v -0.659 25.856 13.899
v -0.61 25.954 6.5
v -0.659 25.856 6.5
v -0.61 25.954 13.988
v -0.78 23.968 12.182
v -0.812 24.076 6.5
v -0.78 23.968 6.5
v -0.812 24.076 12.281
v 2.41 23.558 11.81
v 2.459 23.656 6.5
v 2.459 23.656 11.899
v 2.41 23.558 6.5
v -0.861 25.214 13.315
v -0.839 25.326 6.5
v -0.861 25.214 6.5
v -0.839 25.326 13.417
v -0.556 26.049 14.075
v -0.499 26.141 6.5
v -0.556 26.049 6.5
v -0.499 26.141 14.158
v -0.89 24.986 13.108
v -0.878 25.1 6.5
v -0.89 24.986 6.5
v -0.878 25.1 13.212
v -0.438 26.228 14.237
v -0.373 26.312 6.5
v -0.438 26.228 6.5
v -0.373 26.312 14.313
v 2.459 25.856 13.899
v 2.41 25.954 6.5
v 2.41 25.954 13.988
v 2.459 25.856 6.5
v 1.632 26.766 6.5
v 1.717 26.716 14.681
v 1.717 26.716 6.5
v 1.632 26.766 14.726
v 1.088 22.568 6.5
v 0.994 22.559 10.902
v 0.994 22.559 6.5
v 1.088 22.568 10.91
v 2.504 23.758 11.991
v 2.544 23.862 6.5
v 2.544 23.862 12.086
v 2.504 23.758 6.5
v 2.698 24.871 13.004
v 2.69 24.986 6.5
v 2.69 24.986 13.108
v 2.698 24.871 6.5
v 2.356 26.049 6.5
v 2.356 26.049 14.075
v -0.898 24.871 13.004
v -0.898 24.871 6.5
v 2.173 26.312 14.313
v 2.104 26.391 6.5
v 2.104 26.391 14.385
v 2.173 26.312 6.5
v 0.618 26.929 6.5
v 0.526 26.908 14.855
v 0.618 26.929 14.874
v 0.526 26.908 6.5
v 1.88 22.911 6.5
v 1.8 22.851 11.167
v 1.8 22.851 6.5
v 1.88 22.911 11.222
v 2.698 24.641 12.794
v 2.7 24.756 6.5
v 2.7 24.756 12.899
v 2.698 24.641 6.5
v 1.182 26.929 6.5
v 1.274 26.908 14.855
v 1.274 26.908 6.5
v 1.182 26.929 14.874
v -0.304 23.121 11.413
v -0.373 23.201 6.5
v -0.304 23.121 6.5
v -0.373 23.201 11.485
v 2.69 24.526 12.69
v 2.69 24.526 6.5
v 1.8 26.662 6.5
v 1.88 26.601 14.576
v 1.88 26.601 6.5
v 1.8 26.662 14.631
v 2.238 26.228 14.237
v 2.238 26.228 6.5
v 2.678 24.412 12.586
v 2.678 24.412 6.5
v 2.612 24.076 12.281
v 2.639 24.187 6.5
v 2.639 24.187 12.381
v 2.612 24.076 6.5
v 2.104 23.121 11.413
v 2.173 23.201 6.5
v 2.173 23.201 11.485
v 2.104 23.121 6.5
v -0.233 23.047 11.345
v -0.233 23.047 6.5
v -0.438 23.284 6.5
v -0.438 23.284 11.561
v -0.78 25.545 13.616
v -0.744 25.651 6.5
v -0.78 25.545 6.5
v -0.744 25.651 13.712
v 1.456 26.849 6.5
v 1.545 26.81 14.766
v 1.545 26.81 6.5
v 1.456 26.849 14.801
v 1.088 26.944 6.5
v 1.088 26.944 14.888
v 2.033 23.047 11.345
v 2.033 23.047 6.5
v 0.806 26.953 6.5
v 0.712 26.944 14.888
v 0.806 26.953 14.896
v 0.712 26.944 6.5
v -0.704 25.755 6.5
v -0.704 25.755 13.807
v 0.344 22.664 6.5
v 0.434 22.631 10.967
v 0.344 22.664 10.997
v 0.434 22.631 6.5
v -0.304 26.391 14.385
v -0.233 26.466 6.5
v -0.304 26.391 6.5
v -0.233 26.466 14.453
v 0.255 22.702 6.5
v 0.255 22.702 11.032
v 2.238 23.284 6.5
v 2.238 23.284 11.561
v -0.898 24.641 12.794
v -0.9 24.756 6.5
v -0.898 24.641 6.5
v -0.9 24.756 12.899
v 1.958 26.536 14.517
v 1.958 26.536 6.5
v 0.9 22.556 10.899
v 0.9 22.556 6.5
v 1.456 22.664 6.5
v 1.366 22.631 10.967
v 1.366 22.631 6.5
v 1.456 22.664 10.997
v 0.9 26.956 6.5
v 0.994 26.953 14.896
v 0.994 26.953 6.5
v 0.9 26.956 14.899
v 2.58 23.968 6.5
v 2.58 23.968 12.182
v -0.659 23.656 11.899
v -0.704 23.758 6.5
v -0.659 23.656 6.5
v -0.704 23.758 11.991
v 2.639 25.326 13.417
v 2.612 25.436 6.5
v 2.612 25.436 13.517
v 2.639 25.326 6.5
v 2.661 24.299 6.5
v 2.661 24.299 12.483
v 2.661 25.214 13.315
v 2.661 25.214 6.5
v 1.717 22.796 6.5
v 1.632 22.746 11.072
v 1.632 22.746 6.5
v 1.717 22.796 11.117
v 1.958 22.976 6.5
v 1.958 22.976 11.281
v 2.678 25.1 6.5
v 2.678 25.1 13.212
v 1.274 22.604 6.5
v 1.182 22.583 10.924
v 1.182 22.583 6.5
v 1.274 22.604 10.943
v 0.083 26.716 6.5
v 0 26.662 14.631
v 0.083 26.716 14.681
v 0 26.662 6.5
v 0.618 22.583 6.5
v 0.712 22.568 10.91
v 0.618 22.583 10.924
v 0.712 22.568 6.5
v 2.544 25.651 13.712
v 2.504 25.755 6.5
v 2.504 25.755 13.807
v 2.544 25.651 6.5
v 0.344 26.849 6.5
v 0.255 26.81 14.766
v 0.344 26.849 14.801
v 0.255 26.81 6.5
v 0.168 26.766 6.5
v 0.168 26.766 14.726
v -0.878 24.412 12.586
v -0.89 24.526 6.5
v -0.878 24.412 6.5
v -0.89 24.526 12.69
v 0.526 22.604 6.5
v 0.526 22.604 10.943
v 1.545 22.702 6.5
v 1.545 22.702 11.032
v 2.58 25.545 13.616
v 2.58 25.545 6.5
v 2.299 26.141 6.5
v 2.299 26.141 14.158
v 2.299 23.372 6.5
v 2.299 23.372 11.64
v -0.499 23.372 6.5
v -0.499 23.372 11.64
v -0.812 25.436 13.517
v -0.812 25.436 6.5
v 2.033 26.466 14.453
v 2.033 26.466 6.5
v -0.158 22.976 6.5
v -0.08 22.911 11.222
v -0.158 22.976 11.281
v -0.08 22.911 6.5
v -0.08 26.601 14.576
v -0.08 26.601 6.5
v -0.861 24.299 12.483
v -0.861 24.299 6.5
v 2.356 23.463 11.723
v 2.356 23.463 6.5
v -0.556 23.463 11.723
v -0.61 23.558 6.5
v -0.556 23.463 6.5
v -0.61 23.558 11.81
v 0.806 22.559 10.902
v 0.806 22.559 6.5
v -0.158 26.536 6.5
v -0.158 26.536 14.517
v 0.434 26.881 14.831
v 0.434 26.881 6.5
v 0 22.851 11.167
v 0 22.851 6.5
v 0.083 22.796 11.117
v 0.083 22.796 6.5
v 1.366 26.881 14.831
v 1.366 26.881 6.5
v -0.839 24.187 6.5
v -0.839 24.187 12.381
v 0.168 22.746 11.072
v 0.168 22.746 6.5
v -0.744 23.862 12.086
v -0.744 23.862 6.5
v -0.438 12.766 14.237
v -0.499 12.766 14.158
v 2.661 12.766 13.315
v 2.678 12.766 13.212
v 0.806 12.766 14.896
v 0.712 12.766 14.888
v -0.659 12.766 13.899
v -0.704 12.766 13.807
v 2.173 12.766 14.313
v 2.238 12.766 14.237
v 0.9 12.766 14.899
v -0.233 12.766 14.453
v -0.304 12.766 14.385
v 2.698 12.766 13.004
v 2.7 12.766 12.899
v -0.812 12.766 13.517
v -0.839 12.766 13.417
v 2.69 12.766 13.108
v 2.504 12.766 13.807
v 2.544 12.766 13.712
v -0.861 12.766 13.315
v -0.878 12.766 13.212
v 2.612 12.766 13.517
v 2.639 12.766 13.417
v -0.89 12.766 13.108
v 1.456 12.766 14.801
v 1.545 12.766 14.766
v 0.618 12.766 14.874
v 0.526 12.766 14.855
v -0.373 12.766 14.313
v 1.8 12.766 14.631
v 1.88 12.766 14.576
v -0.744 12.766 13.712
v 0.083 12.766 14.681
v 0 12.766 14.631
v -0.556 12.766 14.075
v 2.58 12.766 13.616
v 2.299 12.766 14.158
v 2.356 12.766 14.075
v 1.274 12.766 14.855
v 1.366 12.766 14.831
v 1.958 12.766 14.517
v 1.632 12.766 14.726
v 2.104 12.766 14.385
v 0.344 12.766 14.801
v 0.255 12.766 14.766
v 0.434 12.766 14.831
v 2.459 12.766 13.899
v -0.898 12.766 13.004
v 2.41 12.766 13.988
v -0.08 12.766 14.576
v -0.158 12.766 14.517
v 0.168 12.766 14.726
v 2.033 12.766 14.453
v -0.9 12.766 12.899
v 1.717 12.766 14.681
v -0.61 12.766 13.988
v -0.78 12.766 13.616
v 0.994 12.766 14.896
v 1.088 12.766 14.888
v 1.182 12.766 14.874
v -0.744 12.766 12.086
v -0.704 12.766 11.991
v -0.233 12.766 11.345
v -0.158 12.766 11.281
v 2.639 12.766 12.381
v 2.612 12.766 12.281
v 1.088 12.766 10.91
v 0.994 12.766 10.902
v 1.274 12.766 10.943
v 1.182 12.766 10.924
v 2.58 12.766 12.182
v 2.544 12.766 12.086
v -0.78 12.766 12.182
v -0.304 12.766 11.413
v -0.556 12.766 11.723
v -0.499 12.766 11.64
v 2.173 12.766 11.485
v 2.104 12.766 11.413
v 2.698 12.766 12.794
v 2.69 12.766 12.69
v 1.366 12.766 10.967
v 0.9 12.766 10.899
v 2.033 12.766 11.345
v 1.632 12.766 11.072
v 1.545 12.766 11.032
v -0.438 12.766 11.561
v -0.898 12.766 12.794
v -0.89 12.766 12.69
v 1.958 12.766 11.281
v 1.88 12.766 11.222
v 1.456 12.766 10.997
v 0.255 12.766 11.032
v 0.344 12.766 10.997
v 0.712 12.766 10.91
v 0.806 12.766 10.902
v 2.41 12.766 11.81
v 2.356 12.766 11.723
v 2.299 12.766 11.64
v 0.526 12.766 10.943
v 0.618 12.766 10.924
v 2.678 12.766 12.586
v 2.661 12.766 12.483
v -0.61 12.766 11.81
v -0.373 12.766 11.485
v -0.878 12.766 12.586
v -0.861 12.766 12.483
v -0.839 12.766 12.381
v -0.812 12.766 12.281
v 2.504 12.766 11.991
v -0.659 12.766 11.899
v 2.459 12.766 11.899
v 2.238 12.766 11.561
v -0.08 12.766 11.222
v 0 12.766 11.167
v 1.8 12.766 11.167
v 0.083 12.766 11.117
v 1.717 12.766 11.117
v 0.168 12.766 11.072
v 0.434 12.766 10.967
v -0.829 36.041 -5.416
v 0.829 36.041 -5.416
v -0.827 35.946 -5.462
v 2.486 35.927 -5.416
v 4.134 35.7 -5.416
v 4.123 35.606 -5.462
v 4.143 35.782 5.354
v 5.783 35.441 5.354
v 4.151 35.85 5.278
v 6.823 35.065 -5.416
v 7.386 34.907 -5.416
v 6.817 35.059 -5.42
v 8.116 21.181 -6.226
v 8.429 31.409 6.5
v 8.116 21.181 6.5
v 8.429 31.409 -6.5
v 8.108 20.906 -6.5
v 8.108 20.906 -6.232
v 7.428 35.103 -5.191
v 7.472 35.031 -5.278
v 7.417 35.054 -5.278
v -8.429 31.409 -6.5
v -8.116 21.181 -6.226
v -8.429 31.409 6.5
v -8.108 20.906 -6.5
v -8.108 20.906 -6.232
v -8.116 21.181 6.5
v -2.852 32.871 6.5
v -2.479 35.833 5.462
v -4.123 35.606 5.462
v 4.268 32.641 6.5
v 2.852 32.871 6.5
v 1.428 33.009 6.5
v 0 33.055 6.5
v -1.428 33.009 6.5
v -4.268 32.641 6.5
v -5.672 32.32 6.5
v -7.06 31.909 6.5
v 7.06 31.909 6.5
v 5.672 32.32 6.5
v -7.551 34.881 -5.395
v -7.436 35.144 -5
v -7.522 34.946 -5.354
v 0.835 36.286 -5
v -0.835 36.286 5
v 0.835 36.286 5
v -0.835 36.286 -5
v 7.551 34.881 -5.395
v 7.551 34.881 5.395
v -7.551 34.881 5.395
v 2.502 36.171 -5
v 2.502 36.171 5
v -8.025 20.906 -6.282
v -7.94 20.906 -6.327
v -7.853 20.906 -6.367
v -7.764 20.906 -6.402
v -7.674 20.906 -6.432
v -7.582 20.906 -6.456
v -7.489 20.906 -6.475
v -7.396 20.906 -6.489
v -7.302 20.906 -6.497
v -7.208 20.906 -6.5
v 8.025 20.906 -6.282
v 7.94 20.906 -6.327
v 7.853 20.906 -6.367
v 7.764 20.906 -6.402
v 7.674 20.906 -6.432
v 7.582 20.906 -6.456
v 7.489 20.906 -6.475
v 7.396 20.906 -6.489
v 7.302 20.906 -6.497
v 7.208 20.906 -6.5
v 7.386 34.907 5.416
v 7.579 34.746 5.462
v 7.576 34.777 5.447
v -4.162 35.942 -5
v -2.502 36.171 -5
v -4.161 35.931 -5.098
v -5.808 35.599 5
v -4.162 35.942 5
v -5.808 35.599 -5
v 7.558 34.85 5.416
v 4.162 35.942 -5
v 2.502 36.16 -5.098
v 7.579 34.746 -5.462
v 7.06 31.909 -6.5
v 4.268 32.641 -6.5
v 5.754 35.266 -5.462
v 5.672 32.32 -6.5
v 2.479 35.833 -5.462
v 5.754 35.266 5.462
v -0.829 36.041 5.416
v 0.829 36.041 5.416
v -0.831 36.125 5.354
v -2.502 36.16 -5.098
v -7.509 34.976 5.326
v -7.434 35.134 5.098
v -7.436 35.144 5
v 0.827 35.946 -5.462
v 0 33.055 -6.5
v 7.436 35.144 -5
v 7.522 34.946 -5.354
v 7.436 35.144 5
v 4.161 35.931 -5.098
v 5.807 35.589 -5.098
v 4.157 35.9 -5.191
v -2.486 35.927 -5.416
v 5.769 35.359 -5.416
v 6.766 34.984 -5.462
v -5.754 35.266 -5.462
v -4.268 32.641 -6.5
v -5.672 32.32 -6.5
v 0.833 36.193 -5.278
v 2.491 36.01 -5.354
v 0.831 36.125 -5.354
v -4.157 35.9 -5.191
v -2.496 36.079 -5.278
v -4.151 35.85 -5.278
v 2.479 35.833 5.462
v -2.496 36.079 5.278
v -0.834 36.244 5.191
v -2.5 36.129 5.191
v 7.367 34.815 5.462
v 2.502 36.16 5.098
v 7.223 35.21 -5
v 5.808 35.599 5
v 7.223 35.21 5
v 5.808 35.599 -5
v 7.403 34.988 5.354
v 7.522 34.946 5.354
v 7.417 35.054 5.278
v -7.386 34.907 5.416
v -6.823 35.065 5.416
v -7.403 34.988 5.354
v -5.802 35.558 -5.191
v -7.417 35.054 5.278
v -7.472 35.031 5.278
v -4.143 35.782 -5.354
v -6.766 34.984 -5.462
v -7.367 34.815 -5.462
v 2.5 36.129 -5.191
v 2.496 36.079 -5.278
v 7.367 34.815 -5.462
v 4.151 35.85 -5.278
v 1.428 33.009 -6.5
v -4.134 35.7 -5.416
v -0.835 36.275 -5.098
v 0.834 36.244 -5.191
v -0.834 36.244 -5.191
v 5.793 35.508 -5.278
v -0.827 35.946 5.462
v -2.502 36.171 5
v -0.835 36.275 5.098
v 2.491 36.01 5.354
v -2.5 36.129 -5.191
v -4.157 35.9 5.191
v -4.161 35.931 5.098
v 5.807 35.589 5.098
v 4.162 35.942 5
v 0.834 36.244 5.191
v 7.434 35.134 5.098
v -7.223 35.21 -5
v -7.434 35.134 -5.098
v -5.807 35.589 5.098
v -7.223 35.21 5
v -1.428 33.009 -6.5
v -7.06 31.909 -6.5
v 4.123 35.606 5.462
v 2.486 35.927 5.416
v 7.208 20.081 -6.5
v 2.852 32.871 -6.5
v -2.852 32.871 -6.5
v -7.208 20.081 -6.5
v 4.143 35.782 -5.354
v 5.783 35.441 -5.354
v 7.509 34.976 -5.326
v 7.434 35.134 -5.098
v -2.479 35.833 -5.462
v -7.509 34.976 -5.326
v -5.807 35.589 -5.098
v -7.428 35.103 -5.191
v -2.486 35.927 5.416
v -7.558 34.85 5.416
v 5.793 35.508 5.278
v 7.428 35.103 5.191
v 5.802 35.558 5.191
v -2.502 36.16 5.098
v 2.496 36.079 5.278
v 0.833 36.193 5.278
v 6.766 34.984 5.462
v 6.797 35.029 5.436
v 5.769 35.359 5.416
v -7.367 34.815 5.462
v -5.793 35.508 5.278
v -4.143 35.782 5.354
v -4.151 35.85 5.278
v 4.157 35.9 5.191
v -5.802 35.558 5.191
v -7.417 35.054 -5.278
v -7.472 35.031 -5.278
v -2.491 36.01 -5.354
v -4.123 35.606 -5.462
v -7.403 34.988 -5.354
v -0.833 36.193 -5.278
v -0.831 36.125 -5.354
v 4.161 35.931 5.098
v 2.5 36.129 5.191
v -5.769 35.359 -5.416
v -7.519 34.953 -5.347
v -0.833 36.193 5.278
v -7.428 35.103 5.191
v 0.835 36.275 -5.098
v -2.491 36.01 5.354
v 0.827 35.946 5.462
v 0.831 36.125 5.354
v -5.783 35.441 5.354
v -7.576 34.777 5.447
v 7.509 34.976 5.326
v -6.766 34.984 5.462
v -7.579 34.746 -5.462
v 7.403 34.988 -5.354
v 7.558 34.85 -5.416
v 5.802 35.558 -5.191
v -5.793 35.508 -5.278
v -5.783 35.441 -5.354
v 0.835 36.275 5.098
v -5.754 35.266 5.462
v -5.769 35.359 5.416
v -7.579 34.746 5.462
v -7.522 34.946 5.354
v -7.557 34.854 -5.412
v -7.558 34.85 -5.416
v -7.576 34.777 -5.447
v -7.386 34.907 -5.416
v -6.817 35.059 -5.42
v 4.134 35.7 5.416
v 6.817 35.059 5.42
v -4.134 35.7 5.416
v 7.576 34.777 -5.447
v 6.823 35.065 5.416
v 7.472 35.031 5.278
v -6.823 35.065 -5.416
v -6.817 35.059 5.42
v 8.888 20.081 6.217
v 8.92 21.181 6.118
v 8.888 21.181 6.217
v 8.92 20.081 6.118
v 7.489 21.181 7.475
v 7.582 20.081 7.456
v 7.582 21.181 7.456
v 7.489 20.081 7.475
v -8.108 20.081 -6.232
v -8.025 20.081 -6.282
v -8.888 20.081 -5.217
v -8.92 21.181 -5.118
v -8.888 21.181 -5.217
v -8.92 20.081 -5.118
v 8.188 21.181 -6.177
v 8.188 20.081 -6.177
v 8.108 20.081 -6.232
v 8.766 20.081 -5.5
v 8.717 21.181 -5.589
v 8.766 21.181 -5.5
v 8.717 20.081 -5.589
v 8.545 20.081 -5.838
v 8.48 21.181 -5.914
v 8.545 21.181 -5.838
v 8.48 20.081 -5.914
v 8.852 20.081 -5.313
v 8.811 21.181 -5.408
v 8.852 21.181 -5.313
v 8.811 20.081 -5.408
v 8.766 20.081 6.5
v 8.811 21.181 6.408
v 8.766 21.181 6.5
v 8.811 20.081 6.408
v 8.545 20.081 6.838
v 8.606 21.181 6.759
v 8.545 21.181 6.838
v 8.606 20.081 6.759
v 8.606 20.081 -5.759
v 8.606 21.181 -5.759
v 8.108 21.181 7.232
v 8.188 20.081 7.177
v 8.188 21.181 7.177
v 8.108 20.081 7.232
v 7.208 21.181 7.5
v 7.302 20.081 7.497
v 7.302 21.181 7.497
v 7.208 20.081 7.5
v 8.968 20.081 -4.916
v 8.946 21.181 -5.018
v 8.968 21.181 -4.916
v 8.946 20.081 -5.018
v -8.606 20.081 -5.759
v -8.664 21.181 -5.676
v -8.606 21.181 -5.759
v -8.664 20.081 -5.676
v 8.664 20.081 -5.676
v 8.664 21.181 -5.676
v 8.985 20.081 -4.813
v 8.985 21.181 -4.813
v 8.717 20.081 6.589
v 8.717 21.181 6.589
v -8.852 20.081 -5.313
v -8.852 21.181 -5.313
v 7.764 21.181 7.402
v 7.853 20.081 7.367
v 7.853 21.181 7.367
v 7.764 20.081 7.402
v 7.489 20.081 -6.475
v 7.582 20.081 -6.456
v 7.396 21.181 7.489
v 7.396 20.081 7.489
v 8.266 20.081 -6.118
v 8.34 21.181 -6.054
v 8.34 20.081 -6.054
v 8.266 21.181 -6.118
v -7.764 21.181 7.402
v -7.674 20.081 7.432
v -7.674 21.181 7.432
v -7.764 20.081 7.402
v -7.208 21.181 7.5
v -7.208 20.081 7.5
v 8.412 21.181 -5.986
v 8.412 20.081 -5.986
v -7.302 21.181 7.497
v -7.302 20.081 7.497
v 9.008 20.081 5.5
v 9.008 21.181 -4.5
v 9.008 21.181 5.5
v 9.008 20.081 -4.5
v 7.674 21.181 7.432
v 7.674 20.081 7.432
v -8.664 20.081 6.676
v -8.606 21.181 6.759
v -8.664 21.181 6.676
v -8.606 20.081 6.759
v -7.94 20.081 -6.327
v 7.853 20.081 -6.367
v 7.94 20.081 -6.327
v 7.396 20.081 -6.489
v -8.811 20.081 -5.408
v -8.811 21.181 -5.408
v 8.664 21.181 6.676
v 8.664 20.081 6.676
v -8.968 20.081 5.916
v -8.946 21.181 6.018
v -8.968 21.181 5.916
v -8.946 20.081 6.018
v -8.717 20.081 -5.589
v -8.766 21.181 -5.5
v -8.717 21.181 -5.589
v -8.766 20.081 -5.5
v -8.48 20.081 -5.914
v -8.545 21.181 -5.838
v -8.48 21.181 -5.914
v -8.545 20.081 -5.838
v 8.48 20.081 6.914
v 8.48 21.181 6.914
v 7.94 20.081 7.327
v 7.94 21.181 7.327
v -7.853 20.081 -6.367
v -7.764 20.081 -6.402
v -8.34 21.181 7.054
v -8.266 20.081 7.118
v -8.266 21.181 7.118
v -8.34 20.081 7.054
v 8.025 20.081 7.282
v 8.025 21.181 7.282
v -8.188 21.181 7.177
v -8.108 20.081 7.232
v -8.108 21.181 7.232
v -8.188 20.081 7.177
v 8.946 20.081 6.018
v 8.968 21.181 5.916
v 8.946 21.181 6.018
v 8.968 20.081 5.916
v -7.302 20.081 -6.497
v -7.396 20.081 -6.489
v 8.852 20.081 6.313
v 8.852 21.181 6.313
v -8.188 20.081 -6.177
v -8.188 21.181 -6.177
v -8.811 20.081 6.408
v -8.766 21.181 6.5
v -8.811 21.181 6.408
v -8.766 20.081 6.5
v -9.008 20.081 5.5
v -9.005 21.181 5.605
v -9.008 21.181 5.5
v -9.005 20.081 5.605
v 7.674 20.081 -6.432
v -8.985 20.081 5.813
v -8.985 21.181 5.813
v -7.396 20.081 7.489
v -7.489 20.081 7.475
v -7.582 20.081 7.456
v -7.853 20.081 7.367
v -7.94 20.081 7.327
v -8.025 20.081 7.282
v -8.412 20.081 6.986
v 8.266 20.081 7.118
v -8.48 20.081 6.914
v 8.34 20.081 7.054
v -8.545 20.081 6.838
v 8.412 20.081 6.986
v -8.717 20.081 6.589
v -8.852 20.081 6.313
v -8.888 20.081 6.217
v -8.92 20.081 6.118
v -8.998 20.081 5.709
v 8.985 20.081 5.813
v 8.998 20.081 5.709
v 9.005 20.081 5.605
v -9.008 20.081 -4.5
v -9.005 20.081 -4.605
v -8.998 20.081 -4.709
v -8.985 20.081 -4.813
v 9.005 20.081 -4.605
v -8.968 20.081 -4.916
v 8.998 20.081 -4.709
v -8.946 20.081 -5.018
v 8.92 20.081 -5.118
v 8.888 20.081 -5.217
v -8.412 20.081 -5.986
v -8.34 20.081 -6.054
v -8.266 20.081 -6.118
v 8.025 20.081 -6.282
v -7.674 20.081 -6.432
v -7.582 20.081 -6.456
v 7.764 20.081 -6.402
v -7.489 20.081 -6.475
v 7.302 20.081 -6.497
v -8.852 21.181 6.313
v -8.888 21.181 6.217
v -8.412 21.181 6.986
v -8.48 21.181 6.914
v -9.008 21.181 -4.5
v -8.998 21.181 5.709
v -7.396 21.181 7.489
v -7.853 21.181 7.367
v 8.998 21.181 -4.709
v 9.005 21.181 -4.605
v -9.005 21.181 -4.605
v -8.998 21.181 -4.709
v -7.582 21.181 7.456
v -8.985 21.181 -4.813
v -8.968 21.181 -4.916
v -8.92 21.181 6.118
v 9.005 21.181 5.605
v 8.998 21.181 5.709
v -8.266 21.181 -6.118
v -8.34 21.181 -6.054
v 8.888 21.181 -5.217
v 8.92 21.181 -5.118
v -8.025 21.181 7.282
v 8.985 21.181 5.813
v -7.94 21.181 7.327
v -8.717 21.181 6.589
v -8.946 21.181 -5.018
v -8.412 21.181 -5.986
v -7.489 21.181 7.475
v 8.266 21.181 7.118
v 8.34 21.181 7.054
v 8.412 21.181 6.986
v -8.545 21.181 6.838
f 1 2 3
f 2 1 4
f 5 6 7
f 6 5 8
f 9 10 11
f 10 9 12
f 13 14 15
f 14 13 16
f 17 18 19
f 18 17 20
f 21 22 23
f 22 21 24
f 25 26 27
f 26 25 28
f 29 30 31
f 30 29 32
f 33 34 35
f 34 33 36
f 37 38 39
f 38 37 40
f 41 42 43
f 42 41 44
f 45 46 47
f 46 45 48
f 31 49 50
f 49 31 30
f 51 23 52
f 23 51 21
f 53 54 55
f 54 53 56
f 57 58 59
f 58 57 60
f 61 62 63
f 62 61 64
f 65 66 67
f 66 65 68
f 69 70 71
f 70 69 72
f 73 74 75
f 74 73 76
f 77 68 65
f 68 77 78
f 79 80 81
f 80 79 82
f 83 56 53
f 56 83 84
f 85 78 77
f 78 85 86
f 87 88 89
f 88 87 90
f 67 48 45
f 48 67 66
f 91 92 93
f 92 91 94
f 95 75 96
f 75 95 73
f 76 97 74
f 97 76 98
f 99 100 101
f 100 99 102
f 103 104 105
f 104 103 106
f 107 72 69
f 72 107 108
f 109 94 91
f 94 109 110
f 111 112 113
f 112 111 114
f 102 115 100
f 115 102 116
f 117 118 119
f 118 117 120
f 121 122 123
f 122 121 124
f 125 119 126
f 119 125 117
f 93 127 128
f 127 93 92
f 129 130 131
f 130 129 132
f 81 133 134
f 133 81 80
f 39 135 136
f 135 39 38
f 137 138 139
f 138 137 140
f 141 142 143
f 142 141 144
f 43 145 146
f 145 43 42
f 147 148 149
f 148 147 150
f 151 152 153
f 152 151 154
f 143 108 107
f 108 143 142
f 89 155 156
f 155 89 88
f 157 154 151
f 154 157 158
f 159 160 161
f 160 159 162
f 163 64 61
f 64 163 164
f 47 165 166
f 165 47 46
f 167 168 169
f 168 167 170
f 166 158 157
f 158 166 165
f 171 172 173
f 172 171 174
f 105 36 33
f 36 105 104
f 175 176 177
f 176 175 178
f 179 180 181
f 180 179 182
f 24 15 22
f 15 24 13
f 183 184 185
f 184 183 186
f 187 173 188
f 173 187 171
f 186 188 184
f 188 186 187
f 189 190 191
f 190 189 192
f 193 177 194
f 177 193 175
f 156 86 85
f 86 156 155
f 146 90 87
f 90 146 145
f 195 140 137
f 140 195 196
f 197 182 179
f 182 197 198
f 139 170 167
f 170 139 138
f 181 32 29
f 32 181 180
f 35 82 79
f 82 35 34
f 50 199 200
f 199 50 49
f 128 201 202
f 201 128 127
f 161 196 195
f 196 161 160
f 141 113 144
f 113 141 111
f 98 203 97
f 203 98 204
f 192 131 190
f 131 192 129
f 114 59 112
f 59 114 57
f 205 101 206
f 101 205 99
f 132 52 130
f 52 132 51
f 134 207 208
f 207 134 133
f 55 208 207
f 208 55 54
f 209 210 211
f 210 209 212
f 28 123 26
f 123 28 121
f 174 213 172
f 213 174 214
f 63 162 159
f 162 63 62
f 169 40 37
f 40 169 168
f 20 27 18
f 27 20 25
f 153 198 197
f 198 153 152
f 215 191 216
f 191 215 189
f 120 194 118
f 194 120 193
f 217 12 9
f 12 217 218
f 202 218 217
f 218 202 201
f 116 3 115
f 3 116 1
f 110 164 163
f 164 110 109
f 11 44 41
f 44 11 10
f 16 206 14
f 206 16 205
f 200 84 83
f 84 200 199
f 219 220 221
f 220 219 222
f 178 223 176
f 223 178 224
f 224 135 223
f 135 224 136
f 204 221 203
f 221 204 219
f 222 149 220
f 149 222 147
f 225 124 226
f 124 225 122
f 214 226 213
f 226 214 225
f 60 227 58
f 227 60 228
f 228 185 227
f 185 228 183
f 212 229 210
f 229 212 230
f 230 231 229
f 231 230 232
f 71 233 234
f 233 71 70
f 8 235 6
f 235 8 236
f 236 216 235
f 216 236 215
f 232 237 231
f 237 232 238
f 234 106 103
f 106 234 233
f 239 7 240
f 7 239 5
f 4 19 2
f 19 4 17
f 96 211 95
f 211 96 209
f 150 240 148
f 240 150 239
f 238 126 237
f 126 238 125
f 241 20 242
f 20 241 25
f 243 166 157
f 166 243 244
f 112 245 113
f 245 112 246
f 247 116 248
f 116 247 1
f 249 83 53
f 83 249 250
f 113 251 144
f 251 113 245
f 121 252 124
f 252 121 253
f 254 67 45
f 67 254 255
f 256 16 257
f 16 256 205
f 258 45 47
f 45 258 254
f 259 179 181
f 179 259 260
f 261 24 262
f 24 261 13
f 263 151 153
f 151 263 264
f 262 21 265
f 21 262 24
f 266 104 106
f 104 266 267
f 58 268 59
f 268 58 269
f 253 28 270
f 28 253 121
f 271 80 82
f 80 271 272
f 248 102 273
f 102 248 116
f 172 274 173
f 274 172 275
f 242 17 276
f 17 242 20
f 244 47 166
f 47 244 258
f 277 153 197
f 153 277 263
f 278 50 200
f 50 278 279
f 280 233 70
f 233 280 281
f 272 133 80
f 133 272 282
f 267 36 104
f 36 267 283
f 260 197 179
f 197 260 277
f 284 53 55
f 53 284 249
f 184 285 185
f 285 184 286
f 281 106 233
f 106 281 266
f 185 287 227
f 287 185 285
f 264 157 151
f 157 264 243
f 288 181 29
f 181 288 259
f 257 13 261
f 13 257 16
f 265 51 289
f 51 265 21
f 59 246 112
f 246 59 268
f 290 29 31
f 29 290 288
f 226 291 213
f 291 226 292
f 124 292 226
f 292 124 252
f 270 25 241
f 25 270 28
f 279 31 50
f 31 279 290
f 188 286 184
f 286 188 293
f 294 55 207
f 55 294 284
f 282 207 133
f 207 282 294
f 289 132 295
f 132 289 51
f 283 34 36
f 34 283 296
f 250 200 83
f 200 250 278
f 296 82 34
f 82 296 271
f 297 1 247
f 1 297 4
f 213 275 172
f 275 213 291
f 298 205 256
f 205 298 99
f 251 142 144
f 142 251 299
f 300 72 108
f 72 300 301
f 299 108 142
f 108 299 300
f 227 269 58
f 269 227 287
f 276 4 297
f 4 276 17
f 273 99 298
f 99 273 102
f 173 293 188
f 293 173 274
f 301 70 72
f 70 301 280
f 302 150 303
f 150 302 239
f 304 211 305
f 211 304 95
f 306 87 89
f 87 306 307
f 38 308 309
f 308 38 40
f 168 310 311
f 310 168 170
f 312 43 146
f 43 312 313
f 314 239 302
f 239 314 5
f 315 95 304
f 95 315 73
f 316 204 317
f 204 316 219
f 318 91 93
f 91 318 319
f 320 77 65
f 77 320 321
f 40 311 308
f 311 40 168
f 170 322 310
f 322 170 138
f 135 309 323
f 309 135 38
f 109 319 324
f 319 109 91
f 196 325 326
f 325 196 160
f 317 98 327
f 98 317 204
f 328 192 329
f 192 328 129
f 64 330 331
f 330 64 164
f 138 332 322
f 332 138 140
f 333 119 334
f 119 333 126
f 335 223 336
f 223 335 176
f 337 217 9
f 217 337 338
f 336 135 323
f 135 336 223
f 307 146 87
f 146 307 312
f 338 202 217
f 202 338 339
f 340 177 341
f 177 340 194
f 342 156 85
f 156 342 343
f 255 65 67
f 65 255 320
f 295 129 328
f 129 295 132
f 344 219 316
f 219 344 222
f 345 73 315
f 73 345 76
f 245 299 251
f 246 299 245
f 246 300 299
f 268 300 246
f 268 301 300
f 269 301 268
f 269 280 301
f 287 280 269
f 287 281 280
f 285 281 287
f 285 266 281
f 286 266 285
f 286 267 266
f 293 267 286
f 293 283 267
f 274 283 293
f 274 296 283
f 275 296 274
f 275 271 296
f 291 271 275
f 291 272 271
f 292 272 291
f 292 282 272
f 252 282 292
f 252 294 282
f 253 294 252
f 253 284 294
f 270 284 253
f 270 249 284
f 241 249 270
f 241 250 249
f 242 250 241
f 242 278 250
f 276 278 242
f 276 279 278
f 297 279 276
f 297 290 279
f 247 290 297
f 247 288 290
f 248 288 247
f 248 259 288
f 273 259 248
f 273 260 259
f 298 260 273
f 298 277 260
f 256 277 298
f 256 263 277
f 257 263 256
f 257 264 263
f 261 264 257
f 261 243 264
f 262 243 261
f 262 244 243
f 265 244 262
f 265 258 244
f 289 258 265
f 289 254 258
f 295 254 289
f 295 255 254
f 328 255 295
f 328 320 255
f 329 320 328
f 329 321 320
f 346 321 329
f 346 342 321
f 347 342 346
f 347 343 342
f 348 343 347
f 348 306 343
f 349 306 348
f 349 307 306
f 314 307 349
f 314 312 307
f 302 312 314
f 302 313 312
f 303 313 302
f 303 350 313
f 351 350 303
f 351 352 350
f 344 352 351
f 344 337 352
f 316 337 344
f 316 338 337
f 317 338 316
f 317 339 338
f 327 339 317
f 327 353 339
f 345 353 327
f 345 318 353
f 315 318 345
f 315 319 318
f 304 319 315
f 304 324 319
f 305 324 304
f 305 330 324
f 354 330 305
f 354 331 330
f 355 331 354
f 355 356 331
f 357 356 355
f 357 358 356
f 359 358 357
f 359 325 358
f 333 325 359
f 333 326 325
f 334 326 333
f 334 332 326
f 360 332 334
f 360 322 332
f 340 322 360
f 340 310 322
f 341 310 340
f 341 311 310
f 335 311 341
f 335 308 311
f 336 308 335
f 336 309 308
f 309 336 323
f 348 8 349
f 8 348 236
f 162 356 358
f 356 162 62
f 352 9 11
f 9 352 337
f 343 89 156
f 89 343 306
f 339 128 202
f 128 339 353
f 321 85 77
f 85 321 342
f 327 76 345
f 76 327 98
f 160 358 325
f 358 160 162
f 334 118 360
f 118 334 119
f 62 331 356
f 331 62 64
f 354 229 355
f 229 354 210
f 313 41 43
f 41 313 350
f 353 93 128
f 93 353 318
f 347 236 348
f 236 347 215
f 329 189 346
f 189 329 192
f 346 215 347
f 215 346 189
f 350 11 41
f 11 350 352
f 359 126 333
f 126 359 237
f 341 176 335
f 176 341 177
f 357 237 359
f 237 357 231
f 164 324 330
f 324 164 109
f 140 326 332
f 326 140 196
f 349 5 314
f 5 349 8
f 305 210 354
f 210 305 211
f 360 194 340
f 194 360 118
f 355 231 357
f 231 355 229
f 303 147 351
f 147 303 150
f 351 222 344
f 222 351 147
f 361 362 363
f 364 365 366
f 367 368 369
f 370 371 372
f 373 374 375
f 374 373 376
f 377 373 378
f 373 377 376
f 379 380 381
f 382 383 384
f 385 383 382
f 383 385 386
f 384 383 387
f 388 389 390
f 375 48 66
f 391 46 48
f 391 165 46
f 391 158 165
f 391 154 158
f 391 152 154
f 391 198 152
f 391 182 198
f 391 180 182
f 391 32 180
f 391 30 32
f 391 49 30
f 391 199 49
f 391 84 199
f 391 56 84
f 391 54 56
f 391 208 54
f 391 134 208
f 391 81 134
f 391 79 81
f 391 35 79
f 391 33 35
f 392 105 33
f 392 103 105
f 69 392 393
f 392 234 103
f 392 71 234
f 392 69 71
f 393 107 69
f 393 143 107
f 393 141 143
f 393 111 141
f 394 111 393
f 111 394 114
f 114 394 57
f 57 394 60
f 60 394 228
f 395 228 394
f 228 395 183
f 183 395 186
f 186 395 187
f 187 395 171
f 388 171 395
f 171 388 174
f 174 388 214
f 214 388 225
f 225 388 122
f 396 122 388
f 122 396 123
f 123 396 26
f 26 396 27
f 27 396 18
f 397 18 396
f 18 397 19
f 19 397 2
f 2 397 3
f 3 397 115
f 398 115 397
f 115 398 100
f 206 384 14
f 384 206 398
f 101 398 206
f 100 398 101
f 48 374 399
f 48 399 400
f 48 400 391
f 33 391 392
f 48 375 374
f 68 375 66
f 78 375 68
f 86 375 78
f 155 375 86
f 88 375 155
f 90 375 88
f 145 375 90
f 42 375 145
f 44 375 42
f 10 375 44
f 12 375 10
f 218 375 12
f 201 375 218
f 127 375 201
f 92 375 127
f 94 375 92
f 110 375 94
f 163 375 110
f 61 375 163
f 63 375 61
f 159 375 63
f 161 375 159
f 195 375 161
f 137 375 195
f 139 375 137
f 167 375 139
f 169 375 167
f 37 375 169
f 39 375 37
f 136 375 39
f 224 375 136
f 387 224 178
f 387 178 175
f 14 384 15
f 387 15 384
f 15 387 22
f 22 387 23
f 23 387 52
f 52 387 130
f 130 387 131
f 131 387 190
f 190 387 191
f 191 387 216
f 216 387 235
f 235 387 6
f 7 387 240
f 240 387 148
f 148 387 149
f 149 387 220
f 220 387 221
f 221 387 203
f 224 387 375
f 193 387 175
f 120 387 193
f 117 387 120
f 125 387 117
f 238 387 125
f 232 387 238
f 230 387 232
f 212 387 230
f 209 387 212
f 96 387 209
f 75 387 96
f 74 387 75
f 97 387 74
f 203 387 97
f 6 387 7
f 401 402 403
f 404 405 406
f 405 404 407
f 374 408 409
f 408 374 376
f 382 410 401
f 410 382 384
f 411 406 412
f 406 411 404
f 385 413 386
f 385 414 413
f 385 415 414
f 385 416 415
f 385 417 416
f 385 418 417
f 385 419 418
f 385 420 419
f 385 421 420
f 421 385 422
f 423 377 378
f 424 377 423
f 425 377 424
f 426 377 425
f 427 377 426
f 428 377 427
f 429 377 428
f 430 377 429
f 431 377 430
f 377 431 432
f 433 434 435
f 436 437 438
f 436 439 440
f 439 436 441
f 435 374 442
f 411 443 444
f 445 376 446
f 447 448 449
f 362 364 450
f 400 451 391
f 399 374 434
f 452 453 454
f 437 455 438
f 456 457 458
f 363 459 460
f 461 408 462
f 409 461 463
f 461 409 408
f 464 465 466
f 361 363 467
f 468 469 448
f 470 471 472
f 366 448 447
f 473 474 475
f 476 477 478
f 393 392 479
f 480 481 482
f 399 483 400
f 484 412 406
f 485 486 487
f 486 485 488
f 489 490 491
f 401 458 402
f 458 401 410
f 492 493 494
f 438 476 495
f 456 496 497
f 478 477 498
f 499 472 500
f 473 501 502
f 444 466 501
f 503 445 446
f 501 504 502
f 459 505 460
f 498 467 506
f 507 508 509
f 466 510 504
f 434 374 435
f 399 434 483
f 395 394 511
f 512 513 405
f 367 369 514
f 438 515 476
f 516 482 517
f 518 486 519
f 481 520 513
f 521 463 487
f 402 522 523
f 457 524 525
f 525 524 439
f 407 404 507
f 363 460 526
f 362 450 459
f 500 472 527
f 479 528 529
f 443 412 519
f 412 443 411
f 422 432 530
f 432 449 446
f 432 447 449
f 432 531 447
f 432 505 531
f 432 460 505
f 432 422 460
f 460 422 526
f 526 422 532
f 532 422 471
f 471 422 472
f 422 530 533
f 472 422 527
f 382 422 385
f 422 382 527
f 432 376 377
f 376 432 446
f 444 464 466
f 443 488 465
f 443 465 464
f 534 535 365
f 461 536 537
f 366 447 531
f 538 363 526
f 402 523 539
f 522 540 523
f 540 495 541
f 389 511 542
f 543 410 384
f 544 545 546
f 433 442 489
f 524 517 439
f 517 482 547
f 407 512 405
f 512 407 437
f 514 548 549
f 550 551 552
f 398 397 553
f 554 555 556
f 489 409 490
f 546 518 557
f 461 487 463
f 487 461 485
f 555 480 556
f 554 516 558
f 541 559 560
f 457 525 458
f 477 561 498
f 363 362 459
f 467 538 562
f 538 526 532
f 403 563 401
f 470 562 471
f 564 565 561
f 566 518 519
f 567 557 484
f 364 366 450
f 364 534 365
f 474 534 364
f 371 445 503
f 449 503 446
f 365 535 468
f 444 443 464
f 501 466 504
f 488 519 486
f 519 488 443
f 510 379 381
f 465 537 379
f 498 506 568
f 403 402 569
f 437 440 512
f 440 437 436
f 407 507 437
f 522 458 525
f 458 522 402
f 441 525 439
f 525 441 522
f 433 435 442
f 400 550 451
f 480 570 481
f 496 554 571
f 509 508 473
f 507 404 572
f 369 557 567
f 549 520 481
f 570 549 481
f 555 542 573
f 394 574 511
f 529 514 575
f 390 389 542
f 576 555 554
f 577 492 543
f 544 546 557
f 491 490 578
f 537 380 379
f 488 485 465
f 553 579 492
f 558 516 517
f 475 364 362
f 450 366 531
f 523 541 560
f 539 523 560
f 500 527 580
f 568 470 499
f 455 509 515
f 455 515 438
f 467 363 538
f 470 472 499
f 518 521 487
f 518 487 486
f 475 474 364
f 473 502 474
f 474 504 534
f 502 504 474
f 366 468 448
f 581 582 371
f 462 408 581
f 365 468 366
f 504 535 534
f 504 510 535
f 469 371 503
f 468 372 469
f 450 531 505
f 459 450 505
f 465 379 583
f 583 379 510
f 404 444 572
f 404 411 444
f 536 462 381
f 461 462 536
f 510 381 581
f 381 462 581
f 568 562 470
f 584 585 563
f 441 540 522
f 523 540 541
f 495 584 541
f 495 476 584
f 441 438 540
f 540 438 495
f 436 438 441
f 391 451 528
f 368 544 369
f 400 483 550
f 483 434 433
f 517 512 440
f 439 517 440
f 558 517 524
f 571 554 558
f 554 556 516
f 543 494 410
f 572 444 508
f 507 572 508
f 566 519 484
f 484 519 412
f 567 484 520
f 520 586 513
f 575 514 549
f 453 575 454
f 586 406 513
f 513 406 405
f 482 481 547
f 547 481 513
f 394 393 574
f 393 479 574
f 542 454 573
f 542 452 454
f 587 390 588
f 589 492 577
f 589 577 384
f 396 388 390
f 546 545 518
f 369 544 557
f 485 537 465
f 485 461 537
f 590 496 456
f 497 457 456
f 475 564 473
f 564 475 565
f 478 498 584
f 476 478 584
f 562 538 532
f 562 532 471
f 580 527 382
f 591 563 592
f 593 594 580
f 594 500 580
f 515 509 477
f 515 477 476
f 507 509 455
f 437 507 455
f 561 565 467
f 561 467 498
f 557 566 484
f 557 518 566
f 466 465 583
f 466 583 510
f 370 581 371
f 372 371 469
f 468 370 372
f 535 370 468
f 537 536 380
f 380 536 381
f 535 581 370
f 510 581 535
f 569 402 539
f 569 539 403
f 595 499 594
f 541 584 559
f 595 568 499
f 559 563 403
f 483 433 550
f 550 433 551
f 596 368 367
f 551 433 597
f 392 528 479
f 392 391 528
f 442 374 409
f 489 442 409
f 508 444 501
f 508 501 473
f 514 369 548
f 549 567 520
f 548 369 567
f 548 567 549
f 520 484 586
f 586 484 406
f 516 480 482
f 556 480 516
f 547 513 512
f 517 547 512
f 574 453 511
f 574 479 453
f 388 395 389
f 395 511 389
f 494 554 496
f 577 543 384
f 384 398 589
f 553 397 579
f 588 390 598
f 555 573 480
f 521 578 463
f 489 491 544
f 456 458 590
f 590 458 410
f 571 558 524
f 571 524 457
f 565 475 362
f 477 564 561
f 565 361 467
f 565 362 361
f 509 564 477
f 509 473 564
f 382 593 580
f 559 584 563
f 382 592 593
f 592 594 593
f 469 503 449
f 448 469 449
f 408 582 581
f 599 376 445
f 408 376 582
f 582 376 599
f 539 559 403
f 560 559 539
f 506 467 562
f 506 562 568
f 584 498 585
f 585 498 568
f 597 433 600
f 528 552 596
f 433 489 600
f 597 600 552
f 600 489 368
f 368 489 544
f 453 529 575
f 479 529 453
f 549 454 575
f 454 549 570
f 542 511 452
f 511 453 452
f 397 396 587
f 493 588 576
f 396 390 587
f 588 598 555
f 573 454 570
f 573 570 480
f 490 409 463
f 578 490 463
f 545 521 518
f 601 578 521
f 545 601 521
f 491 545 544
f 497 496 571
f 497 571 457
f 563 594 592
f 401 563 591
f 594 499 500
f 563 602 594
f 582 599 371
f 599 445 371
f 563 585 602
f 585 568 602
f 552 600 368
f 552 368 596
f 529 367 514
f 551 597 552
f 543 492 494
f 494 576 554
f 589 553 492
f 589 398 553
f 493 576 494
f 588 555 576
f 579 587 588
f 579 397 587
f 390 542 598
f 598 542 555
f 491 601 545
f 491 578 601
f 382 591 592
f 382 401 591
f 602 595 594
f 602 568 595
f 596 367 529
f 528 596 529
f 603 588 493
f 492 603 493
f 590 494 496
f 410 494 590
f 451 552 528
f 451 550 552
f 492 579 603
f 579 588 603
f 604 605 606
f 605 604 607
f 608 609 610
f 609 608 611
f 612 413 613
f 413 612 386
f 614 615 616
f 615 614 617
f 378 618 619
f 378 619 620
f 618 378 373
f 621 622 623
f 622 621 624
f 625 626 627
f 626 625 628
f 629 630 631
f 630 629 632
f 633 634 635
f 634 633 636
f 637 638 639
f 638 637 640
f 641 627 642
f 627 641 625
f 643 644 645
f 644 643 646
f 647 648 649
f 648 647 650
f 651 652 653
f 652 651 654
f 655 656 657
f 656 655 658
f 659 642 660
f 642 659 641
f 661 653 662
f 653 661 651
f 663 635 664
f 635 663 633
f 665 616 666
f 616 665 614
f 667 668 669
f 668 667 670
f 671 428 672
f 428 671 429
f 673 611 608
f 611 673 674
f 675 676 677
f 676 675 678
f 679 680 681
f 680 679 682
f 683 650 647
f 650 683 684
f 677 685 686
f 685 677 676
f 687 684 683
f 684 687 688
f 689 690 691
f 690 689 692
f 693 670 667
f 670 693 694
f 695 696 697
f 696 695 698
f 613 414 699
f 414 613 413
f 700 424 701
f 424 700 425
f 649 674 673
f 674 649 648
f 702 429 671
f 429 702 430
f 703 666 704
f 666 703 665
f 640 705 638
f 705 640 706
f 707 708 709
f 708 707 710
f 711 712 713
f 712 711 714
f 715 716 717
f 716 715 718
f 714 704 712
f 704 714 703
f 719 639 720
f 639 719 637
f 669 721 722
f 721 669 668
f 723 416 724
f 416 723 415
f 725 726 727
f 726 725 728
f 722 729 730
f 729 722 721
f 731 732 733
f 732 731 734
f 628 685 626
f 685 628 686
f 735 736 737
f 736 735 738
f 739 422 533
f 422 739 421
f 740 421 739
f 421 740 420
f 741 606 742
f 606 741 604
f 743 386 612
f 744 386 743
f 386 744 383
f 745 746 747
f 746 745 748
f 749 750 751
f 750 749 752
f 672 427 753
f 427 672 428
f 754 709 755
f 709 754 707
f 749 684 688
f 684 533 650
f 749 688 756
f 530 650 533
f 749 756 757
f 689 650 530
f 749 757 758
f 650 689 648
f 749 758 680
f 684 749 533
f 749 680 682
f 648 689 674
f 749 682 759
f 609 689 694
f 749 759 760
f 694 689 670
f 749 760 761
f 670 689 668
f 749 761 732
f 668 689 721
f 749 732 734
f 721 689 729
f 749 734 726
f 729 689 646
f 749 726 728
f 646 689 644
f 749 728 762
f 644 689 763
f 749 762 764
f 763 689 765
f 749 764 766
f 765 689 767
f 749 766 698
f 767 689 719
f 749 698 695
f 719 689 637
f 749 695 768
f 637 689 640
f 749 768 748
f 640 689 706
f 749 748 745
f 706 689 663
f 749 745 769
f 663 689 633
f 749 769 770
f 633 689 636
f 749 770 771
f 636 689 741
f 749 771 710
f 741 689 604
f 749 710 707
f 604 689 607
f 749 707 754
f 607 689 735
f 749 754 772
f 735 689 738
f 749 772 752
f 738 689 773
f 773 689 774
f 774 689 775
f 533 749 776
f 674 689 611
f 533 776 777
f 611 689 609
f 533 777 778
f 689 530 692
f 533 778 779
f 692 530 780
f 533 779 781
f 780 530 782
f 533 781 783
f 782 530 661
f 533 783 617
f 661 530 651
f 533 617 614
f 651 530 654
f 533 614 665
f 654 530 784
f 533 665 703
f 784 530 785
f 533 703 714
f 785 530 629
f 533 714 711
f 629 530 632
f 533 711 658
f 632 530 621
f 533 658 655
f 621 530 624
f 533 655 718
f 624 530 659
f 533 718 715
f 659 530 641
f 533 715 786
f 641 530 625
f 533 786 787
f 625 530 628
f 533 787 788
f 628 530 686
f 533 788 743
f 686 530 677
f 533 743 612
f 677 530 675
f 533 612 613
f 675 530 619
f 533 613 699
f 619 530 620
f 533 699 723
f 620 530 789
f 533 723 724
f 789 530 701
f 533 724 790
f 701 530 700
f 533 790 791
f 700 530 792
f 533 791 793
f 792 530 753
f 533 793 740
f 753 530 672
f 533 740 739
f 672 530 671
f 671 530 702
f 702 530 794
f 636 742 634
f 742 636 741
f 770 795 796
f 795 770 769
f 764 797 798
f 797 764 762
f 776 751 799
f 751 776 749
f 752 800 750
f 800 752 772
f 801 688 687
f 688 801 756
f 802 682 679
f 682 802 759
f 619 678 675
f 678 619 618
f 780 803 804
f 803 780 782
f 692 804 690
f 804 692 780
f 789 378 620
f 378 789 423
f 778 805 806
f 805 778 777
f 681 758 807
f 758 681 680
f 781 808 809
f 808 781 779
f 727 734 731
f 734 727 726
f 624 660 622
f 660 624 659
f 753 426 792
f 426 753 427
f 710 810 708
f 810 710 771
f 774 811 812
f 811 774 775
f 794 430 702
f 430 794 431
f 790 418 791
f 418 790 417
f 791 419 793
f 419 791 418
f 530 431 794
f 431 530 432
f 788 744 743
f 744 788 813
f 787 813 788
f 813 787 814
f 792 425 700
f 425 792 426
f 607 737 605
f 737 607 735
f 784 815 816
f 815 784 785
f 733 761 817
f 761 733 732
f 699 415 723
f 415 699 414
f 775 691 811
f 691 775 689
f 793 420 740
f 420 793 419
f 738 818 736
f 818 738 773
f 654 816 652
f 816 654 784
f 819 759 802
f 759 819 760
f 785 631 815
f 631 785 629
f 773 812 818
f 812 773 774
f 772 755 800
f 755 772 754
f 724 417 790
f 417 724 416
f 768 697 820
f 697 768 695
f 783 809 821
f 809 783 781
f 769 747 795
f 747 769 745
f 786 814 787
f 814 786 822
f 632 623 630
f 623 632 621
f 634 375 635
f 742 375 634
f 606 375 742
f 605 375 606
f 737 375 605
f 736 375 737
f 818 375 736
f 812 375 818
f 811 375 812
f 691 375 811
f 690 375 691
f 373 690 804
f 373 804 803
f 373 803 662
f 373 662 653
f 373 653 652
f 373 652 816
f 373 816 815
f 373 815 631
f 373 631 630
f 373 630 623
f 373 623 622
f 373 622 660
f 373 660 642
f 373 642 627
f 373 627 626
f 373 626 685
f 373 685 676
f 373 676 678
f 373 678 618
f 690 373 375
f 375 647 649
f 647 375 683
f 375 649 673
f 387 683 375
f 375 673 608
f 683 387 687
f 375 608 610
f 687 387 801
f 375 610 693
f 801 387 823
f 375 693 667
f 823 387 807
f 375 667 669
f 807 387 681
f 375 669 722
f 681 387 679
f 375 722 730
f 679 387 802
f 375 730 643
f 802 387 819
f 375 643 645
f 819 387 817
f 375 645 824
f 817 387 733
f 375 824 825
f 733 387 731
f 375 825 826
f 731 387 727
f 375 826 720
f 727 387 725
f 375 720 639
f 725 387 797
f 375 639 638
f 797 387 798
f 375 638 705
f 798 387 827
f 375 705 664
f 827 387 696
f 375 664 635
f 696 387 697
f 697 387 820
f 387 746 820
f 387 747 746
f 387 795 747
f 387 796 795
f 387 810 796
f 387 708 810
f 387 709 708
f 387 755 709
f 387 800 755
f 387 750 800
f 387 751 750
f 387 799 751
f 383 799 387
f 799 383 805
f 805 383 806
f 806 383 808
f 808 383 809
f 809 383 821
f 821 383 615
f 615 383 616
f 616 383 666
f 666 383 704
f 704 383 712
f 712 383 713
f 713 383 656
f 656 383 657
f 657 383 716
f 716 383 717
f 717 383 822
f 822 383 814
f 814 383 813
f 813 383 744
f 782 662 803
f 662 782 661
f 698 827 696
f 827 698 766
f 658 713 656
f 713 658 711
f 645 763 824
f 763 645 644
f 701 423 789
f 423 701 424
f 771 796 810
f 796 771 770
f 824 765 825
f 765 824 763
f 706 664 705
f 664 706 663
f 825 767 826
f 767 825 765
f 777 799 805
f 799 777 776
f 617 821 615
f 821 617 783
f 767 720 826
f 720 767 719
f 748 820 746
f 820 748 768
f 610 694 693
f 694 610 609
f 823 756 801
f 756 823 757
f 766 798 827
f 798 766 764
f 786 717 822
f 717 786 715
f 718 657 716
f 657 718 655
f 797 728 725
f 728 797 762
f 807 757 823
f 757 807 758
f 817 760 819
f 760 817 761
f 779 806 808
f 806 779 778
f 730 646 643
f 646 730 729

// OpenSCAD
// file: Common.scad
/*  Copyright (C) 2020  Adam Green (https://github.com/adamgreen)

    This program is free software; you can redistribute it and/or
    modify it under the terms of the GNU General Public License
    as published by the Free Software Foundation; either version 2
    of the License, or (at your option) any later version.

    This program is distributed in the hope that it will be useful,
    but WITHOUT ANY WARRANTY; without even the implied warranty of
    MERCHANTABILITY or FITNESS FOR A PARTICULAR PURPOSE.  See the
    GNU General Public License for more details.
*/
// Parameters and modules used to produce multiple parts of the remote control enclosure.


// Parameters
pcbDiameter = 54;
pcbClearance = 3;

bodyWidthScale = 0.9;
bodyLengthScale = 1.1;

buttonAngle = 30;
buttonEdgeRadius = 0.5;
buttonThickness = 3;
buttonHeight = 11;
buttonZPos = 18;
buttonSlant = 1;
buttonEnclosureDepth = 9.5;
buttonBumperWidth = 1.0;
buttonBumperOffset = 0.0;
buttonBumperThickness = 0.5;
buttonArmRadius = 2.0;
buttonArmHeight = 8.4;
buttonArmLength = 10.9;
buttonArmXOffset = -1.0;
buttonArmYOffset = 1.5;
buttonRidgeRadius = 1.0;
buttonRidgeStart = 1.0;


// Calculated values
topDiameter = pcbDiameter + 2 * pcbClearance;
topRadius = topDiameter / 2;

buttonEdgeDistance = topRadius+buttonThickness-buttonEdgeRadius;
buttonEdgeAngle = asin(buttonEdgeRadius/buttonEdgeDistance);
// Increase the circumference by buttonSlant. circumference = radians * radius.
// insideRadians * insideRadius = outsideRadians * outsideRadius + 2 * buttonSlant.
buttonInsideAngle = rad2deg((deg2rad(buttonAngle) * buttonEdgeDistance + 2 * buttonSlant) / topRadius);

buttonInsideWidth = deg2rad(buttonInsideAngle)*topRadius-2*buttonEdgeRadius;
buttonInsideHeight = buttonHeight+2*buttonSlant;
buttonInsideRadiusDiff = cos(buttonInsideAngle/2)*topRadius;
buttonInsideRadius = buttonInsideRadiusDiff-buttonEnclosureDepth/2;

buttonBumperLocation = (topRadius-buttonInsideRadiusDiff)+buttonEnclosureDepth-buttonBumperOffset;

function deg2rad(a) = a * PI / 180;
function rad2deg(a) = a * 180 / PI;



// Draws the deadman switch button.
module Button() {
    hull() {
        ButtonCorners();
        ButtonEdges();
        ButtonInside();
        ButtonThroughEnclosure();
    }
    ButtonBumper();
    translate([buttonArmXOffset, 0, 0]) ButtonArm();
}

// Finds the corner of the rounded edges by intersecting full horizontal/vertical edges.
module ButtonCorners() {
    intersection() {
        for(i =[-1:2:1])
            HorizontalButtonEdge(buttonAngle, i);
        for (i = [-1:2:1])
            VerticalButtonEdge(0, i);
    }
}
// Draws the button edges, but not the whole length. 
// Instead go a bit shorter to meetup with corners.
module ButtonEdges() {
    for(i =[-1:2:1])
        HorizontalButtonEdge(buttonAngle-2*buttonEdgeRadius, i);
    for (i = [-1:2:1])
        VerticalButtonEdge(buttonEdgeRadius, i);
}

// Draw the inside curved surface of the button.
module ButtonInside() {
    rotate([0, 0, 90-buttonInsideAngle/2]) translate([0, 0, 0]) 
        rotate_extrude(angle=buttonInsideAngle) 
            translate([topRadius, 0, 0]) square([0.1, buttonHeight+2*buttonSlant], center=true);
}

// Draw the piece of the button which passes through the enclosure.
module ButtonThroughEnclosure() {
    translate([0, buttonInsideRadius, 0])
        cube([buttonInsideWidth, buttonEnclosureDepth, buttonInsideHeight], center=true);
}

// Draw the rounded bumper around the inside of the button to hold it in.
module ButtonBumper() {
    translate([0, topRadius-buttonBumperLocation-buttonBumperThickness/2, -buttonBumperWidth/2])
        rotate([90, 0, 0]) 
            translate([0, 0, -1.0/2]) 
                RoundedRect(2.0, buttonInsideWidth+buttonBumperWidth*2, buttonInsideHeight+buttonBumperWidth, 1.0);
}

// Draw the arm that goes from the deadman button to the right angled switch.
module ButtonArm() {
    rotate([0, 180, 0]) {
        translate([0, buttonInsideRadius-buttonEnclosureDepth/2+buttonArmRadius+buttonArmYOffset, buttonInsideHeight/2-0.001]) {
            intersection() {
                cylinder(r=buttonArmRadius, h=buttonArmHeight);
                translate([0, buttonArmRadius, buttonArmHeight-buttonArmRadius]) 
                    rotate([90, 0, 0]) cylinder(r=buttonArmRadius, h=buttonArmLength);
            }
            cylinder(r=buttonArmRadius, h=buttonArmHeight-buttonArmRadius);
            translate([0, 0, buttonArmHeight-buttonArmRadius]) 
                rotate([90, 0, 0]) cylinder(r=buttonArmRadius, h=buttonArmLength);
        }
    }
}

// This is the solid that should be removed from the bottom of the button guide to allow the arm to slide.
module ButtonArmSlot() {
    translate([-buttonArmRadius+buttonArmXOffset, buttonInsideRadius-buttonEnclosureDepth/2, -buttonInsideHeight/2-buttonArmHeight+0.001])
        cube([buttonArmRadius*2, buttonArmYOffset+buttonArmRadius, buttonArmHeight]);
}

// Draw a ridge on the top of the button to fit into a groove of the remote control.
// This stabilizes the button from side to side rotation.
module ButtonRidge() {
    translate([0, buttonInsideRadius-buttonEnclosureDepth/2, buttonInsideHeight/2]) 
        rotate([-90, 0, 0]) 
            cylinder(r=buttonRidgeRadius, h=topRadius-buttonInsideRadius+buttonEnclosureDepth/2-buttonRidgeStart);
}

// Draws the horizontal button edge. 
// Caller specifies degrees it should span and whether it should go on top or bottom.
module HorizontalButtonEdge(a, topOrBottom) {
    rotate([0, 0, (90-a/2)])
        translate([0, 0, topOrBottom*(buttonHeight/2-buttonEdgeRadius)]) 
            rotate_extrude(angle=a) 
            translate([buttonEdgeDistance, 0, 0]) 
                circle(r=buttonEdgeRadius);
}

// Draws the vertical button edge. 
// Caller specifies clearance on ends and whether it should draw left or right edge.
module VerticalButtonEdge(clearance, leftOrRight) {
    translate([leftOrRight*sin(buttonAngle/2-buttonEdgeAngle)*buttonEdgeDistance, 
               cos(buttonAngle/2-buttonEdgeAngle)*buttonEdgeDistance, 
               -buttonHeight/2+clearance]) 
        cylinder(r=buttonEdgeRadius, h=buttonHeight-2*clearance);

}

// Draws a rounded rect with the requested dimensions.
module RoundedRect(cornerRadius, width, length, height) {
    hull() {
        translate([width/2-cornerRadius, length/2-cornerRadius, height/2]) 
            cylinder(r=cornerRadius, h=height, center=true);
        translate([-(width/2-cornerRadius), -(length/2-cornerRadius), height/2]) 
            cylinder(r=cornerRadius, h=height, center=true);
        translate([-(width/2-cornerRadius), length/2-cornerRadius, height/2]) 
            cylinder(r=cornerRadius, h=height, center=true);
        translate([width/2-cornerRadius, -(length/2-cornerRadius), height/2]) 
            cylinder(r=cornerRadius, h=height, center=true);
    }
}
// main file
/*  Copyright (C) 2020  Adam Green (https://github.com/adamgreen)

    This program is free software; you can redistribute it and/or
    modify it under the terms of the GNU General Public License
    as published by the Free Software Foundation; either version 2
    of the License, or (at your option) any later version.

    This program is distributed in the hope that it will be useful,
    but WITHOUT ANY WARRANTY; without even the implied warranty of
    MERCHANTABILITY or FITNESS FOR A PARTICULAR PURPOSE.  See the
    GNU General Public License for more details.
*/
// Deadman button to be placed inside of remote control top to press deadman switch.
include <Common.scad>


rotate([0.0, 180.0, 0.0]) scale([bodyWidthScale, bodyLengthScale, 1.0])
    Button();



// Sets the smoothness of arcs/circles.
$fs = 0.1;
$fa = 3;
